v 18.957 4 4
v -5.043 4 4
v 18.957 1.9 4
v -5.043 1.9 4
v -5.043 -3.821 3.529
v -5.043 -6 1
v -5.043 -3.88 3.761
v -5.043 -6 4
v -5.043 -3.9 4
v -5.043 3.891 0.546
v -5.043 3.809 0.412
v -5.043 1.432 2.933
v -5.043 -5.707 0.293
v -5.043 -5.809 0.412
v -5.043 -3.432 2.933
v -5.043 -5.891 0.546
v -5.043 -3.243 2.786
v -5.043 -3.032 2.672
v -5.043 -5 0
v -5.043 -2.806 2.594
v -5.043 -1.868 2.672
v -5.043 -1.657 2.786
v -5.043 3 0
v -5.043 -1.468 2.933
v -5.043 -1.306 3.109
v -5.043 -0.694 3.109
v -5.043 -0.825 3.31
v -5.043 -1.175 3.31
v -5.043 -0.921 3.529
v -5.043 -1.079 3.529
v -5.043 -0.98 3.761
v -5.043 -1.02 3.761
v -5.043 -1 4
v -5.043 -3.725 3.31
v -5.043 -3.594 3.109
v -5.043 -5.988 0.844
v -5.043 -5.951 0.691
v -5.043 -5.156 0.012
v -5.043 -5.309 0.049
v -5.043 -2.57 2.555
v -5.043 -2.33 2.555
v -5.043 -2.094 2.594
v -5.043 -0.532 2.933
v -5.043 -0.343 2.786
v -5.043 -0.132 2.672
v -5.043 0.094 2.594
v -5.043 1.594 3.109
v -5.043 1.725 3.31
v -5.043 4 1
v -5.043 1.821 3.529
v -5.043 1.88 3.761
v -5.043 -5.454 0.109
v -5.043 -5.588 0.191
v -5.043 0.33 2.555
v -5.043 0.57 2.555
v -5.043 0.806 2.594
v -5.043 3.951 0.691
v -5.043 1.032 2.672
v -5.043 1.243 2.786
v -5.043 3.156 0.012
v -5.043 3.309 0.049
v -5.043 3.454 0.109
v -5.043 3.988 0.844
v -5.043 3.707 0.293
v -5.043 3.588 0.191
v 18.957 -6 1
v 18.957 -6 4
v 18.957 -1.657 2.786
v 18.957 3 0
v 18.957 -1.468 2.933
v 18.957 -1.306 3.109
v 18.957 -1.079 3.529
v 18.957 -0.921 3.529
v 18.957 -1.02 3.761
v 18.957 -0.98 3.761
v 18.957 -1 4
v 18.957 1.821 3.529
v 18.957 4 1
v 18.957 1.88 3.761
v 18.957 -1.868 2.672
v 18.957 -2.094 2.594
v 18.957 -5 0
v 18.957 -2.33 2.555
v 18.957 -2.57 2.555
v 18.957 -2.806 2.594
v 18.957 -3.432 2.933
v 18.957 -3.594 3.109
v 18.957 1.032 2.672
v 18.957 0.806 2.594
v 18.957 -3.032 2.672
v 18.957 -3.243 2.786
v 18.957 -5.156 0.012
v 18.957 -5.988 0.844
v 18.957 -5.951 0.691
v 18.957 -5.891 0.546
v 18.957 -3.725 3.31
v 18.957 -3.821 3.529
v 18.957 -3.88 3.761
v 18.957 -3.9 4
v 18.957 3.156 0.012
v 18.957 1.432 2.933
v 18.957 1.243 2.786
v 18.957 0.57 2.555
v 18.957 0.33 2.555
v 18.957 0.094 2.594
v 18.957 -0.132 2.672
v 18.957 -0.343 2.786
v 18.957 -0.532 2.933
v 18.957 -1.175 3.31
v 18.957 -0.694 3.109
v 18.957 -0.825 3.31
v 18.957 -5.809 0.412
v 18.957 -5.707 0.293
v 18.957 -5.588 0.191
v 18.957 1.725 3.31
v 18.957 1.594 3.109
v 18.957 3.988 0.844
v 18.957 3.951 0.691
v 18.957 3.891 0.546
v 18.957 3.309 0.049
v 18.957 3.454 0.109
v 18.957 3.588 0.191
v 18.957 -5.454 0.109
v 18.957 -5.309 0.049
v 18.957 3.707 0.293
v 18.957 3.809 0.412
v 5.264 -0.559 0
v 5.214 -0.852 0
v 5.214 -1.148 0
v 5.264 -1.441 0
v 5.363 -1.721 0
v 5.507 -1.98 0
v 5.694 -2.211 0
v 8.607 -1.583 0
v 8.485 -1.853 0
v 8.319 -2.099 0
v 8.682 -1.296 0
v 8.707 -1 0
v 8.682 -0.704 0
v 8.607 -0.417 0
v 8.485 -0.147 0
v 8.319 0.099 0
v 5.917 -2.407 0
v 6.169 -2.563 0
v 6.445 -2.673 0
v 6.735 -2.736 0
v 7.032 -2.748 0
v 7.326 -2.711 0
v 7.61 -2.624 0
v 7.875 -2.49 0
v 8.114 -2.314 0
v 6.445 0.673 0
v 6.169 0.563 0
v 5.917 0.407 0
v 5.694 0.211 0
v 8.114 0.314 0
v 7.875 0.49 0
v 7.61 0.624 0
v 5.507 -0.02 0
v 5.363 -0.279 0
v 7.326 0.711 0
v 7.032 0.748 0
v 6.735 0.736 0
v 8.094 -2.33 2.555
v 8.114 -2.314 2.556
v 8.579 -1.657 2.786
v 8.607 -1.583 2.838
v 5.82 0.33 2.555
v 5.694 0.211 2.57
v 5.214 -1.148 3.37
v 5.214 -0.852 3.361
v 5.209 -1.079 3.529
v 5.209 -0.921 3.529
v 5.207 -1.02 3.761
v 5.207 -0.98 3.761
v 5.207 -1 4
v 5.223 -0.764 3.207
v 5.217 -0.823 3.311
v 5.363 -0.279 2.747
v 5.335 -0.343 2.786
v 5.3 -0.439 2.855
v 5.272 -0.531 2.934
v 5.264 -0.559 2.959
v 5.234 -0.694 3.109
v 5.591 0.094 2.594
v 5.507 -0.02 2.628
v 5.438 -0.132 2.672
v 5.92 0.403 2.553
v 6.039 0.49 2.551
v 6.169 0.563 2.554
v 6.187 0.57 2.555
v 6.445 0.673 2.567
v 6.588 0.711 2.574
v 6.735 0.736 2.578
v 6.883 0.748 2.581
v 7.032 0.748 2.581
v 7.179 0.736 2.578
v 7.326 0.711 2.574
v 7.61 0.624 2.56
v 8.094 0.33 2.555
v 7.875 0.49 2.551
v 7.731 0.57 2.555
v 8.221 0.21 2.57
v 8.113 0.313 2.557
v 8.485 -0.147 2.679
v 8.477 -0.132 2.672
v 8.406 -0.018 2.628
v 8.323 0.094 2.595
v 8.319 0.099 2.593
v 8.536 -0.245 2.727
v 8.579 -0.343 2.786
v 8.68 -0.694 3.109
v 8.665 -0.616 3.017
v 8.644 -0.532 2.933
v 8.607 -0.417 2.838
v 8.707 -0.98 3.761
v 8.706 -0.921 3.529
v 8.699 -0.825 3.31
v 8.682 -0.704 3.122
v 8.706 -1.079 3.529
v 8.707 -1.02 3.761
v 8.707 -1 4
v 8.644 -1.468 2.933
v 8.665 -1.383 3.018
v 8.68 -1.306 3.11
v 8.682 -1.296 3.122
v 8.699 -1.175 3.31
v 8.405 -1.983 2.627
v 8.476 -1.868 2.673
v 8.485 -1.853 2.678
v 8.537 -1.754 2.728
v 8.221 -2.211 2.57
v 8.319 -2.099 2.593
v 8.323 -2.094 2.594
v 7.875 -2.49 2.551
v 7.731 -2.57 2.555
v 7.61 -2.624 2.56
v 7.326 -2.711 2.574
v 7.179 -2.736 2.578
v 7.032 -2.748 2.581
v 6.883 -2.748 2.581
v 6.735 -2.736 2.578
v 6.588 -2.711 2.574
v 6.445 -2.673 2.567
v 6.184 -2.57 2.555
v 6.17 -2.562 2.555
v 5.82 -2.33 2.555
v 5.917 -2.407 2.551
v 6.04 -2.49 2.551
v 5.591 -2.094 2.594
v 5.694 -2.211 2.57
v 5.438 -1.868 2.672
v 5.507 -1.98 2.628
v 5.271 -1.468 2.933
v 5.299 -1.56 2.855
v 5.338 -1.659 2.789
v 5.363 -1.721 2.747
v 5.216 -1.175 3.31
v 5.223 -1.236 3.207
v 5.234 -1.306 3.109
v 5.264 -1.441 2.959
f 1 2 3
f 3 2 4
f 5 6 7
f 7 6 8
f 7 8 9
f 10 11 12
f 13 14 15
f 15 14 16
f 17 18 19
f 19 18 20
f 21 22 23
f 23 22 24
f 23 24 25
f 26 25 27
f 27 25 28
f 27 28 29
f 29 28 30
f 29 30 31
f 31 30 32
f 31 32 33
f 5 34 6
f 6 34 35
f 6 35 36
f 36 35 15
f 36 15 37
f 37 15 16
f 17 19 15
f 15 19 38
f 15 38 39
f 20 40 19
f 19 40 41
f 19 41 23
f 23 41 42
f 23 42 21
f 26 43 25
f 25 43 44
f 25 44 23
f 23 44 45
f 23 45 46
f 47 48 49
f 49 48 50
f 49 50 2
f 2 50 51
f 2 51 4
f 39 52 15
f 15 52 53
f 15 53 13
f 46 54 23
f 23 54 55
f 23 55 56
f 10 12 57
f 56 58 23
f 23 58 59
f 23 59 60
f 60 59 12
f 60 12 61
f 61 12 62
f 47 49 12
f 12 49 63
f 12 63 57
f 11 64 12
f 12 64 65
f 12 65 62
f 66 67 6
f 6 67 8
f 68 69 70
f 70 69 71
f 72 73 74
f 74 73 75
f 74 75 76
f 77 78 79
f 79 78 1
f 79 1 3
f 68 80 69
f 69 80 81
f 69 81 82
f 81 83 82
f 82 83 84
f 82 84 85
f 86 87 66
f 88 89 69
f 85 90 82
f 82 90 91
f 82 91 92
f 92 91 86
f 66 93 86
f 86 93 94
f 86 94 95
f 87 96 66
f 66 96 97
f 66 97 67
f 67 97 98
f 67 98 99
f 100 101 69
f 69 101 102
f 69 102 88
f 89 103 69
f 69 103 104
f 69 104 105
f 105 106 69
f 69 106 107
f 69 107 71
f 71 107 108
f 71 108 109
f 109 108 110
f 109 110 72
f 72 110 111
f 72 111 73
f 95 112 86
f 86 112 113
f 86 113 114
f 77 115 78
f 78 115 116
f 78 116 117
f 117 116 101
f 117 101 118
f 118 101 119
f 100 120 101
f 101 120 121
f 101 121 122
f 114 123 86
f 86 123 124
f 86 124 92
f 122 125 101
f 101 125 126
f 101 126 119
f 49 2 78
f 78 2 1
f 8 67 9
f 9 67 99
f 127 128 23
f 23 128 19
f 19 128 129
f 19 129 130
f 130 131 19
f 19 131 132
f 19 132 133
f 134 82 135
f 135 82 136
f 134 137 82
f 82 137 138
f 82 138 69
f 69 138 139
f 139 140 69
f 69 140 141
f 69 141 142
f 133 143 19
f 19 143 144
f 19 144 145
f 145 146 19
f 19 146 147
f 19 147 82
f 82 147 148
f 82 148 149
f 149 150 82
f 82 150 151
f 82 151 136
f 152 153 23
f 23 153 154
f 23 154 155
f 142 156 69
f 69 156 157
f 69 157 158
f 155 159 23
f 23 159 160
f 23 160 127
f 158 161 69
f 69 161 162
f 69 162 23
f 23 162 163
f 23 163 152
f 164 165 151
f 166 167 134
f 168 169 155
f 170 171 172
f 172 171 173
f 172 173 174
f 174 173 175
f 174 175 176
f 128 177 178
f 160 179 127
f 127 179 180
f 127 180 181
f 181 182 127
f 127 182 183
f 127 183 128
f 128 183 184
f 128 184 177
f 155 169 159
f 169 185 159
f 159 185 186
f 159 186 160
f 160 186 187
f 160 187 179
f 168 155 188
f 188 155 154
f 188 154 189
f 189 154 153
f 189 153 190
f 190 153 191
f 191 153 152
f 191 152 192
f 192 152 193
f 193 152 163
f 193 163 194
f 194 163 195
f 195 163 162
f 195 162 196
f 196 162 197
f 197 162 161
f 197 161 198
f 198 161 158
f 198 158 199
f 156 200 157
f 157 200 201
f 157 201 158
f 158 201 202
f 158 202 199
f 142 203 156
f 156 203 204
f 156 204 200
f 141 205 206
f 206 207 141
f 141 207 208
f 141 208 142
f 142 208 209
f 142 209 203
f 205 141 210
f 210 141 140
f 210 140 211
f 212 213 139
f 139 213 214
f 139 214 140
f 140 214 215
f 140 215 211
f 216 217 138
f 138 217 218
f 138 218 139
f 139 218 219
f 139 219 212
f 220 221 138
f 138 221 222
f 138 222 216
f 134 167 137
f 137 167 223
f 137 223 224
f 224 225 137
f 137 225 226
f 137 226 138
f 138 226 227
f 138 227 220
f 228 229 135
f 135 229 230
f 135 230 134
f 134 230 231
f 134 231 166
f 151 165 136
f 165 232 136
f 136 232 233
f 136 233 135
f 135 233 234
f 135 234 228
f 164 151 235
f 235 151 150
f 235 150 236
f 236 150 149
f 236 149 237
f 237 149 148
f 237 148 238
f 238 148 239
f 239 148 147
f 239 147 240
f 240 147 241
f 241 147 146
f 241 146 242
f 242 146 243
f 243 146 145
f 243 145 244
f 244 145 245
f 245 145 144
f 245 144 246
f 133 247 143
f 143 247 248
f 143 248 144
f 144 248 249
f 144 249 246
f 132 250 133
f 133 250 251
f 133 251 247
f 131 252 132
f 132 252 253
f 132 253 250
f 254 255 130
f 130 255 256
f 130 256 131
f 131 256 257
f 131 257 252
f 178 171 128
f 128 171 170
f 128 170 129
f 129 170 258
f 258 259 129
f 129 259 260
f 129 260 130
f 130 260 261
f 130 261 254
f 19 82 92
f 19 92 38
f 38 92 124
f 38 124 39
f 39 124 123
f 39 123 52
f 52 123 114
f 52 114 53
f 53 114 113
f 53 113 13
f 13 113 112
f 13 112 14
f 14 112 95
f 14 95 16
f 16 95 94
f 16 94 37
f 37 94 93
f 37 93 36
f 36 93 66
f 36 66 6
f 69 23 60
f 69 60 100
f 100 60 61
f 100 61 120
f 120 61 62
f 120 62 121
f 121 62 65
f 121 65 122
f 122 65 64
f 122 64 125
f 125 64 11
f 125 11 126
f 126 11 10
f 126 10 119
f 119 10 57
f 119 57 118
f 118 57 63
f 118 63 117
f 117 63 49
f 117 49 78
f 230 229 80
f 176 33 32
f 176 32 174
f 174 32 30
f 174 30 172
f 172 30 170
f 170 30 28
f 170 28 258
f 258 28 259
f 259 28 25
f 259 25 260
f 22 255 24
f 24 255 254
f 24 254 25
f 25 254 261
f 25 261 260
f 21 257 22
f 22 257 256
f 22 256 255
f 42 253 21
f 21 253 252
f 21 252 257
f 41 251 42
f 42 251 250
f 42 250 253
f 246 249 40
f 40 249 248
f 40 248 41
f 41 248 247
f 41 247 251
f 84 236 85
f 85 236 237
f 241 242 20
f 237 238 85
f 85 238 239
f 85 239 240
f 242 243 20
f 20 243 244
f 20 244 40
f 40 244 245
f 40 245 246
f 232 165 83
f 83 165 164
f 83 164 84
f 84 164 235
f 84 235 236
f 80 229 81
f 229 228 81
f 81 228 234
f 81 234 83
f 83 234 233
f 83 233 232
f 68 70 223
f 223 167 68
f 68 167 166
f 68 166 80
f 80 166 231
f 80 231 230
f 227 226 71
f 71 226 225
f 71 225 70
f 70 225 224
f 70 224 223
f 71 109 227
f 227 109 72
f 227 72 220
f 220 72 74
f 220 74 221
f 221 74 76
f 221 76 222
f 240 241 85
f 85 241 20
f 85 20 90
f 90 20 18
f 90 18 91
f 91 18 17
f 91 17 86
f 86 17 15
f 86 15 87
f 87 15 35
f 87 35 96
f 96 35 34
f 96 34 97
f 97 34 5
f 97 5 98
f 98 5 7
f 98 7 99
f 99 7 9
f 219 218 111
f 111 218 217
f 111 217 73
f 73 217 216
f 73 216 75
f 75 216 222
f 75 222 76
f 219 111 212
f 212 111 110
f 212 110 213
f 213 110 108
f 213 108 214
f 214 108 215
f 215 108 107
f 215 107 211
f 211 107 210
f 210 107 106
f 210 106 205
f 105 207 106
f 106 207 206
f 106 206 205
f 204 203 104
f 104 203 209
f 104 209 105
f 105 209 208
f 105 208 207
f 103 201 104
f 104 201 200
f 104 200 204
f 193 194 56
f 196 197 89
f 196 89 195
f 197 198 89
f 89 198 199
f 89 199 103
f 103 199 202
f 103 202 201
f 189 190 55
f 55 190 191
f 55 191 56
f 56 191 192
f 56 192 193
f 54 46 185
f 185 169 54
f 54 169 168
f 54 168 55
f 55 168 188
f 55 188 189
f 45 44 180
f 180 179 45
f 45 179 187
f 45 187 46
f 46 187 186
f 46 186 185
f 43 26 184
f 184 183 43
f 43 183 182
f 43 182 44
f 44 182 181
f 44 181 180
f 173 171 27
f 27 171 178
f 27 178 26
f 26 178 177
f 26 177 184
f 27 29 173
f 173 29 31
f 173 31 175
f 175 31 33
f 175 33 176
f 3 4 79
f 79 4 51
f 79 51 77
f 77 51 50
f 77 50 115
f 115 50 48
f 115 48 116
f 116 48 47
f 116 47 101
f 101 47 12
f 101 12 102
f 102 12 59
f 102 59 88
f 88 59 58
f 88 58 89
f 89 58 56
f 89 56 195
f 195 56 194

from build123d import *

# Parameters (mm, degrees)
SKETCH2_W           = 24
SKETCH2_H           = 10
BOSS_EXTRUDE1_DEPTH = 4
SKETCH3_R           = 1.75
CUT_EXTRUDE1_DEPTH  = 5
FILLET1_R           = 1
CUT_EXTRUDE2_DEPTH  = 30


with BuildPart() as part:
    # Sketch2 → Boss-Extrude1 (new body)
    with BuildSketch(Plane.XY):
        with Locations((6.957345972, -1)):
            Rectangle(SKETCH2_W, SKETCH2_H)
    extrude(amount=BOSS_EXTRUDE1_DEPTH)

    # Sketch3 → Cut-Extrude1 (cut)
    with BuildSketch(Plane.XY.offset(4)):
        with Locations((6.957345972, -1)):
            Circle(SKETCH3_R)
    extrude(amount=-CUT_EXTRUDE1_DEPTH, mode=Mode.SUBTRACT)

    # Fillet1
    fillet1_edges = [part.edges().sort_by_distance(p)[0] for p in [
        (6.957345972, 4, 0),
        (6.957345972, -6, 0),
    ]]
    fillet(fillet1_edges, radius=FILLET1_R)

    # Sketch4 → Cut-Extrude2 (cut)
    with BuildSketch(Plane.ZY.offset(5.042654028)):
        with BuildLine():
            ThreePointArc((4, -3.9), (5.025304833, -3.475304833), (5.45, -2.45))
            ThreePointArc((5.45, -2.45), (5.025304832, -1.424695167), (3.999999998, -1))
            Line((4, -1), (4, -3.9))
        make_face()
        with BuildLine():
            Line((4, -3.9), (4, -1))
            ThreePointArc((3.999999998, -1), (2.55, -2.450000001), (4, -3.9))
        make_face()
        with BuildLine():
            ThreePointArc((4, 1.9), (2.55, 0.450000001), (3.999999998, -1))
            Line((4, -1), (4, 1.9))
        make_face()
        with BuildLine():
            Line((4, 1.9), (4, -1))
            ThreePointArc((3.999999998, -1), (5.025304832, -0.575304833), (5.45, 0.45))
            ThreePointArc((5.45, 0.45), (5.025304833, 1.475304833), (4, 1.9))
        make_face()
    extrude(amount=-CUT_EXTRUDE2_DEPTH, mode=Mode.SUBTRACT)


solid = part.part
